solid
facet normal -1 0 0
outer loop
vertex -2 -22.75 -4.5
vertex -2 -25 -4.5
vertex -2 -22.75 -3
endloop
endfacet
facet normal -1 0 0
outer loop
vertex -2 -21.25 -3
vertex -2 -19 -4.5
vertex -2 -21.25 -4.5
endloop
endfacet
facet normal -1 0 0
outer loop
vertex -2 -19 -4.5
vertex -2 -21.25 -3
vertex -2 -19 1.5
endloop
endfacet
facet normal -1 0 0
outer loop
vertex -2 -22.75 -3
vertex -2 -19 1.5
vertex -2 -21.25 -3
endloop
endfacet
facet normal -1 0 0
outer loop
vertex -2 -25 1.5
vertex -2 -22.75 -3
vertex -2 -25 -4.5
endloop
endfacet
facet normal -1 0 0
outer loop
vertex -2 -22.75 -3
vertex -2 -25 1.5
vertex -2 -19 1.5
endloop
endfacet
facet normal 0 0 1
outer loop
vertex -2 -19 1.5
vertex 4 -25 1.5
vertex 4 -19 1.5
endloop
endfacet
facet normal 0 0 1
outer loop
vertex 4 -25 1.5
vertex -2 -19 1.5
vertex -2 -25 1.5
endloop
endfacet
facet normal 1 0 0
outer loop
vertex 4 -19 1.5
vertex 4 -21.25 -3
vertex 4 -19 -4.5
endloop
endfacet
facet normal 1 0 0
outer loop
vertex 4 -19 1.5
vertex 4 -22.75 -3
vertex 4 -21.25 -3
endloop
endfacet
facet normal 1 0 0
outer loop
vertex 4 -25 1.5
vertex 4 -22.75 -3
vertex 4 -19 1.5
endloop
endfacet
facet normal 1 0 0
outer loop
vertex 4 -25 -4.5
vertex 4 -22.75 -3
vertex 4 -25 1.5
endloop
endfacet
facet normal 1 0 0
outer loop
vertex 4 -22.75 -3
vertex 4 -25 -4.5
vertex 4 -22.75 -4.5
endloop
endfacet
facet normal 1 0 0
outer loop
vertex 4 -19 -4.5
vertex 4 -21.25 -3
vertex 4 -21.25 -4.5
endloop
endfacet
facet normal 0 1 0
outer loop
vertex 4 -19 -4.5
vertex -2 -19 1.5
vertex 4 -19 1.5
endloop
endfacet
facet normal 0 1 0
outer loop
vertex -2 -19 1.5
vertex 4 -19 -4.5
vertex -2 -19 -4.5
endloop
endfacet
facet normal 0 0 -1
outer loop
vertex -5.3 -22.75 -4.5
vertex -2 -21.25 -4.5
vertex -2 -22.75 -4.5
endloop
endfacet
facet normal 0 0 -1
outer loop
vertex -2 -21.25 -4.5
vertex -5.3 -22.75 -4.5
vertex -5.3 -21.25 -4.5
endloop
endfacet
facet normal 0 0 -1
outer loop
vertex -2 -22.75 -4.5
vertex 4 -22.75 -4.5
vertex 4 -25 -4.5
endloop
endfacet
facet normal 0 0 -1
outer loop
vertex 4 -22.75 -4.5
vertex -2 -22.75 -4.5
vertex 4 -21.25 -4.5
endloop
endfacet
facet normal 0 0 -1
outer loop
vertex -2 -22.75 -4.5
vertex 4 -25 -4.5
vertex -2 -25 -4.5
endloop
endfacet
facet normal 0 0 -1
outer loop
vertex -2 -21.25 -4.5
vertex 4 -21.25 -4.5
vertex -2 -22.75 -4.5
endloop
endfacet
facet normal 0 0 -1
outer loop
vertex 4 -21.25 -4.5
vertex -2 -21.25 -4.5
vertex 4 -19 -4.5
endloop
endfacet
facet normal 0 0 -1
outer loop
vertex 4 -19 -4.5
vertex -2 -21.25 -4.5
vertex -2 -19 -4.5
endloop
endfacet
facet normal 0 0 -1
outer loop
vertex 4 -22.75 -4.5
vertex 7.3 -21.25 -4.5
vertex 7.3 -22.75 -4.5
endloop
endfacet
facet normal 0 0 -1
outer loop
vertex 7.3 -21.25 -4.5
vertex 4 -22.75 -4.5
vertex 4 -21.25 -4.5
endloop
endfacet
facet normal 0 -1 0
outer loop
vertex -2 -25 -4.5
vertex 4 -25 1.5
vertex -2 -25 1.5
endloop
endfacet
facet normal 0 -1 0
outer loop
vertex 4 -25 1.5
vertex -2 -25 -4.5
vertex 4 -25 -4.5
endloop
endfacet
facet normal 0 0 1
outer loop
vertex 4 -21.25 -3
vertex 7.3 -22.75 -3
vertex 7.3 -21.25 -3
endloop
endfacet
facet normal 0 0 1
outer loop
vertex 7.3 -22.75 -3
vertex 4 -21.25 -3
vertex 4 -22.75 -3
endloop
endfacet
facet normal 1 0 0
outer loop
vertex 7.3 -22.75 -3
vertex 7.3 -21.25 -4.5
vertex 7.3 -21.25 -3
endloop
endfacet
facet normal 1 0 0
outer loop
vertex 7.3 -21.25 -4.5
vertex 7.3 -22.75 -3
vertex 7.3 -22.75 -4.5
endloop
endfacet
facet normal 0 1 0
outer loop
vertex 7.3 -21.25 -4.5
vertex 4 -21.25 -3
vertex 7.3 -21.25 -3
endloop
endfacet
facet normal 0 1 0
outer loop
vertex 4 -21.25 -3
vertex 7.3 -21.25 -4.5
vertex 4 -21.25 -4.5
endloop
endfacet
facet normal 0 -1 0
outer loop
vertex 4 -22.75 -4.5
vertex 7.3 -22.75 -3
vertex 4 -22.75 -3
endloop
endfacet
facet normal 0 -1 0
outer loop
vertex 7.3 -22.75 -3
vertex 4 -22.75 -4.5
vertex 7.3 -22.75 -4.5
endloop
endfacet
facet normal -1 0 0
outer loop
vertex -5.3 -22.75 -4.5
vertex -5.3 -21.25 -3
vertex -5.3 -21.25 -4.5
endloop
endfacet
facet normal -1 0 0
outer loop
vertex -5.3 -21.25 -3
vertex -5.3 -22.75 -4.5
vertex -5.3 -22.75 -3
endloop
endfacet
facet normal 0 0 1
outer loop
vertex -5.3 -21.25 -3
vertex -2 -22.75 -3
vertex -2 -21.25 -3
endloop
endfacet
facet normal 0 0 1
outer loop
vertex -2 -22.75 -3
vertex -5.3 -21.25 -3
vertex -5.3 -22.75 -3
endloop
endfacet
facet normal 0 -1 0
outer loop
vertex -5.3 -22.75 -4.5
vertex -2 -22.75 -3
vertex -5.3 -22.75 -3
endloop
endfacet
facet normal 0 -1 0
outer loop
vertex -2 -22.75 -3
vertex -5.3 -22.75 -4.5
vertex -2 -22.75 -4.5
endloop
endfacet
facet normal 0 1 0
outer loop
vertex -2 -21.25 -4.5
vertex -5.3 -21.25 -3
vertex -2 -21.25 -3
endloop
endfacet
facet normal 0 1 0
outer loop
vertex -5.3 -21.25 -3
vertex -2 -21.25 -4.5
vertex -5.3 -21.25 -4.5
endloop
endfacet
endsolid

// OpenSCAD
board_x = 31.0;
board_y = 50.0;
board_z =  1.6;

offset = 1;

base_x = board_x+offset+2;
base_y = board_y+offset+2;
base_z = 9;
base_width = 2;

module pushButton(){
   $fn=50;
   //Button
   translate([base_width-1,-22,-1.5]){
    //bcube([7,7,3],0,0);
    cube([6,6,6], center=true);
   }
   //Pin
   translate([base_width-1,-22,-3]){
    //bcube([3,3,6],1,6);
    //cylinder(h=1, r=1.5);
   }
   //Push nub
   //translate([base_width-1,-22,-5]){
   // cylinder(h=3, r=2);
   //}
   //Arms
   translate([base_width+3.3,-22,-3.75]){
    cube([4,1.5,1.5], center = true);
   }
   translate([base_width-5.3,-22,-3.75]){
    cube([4,1.5,1.5], center = true);
   }
}


pushButton();
